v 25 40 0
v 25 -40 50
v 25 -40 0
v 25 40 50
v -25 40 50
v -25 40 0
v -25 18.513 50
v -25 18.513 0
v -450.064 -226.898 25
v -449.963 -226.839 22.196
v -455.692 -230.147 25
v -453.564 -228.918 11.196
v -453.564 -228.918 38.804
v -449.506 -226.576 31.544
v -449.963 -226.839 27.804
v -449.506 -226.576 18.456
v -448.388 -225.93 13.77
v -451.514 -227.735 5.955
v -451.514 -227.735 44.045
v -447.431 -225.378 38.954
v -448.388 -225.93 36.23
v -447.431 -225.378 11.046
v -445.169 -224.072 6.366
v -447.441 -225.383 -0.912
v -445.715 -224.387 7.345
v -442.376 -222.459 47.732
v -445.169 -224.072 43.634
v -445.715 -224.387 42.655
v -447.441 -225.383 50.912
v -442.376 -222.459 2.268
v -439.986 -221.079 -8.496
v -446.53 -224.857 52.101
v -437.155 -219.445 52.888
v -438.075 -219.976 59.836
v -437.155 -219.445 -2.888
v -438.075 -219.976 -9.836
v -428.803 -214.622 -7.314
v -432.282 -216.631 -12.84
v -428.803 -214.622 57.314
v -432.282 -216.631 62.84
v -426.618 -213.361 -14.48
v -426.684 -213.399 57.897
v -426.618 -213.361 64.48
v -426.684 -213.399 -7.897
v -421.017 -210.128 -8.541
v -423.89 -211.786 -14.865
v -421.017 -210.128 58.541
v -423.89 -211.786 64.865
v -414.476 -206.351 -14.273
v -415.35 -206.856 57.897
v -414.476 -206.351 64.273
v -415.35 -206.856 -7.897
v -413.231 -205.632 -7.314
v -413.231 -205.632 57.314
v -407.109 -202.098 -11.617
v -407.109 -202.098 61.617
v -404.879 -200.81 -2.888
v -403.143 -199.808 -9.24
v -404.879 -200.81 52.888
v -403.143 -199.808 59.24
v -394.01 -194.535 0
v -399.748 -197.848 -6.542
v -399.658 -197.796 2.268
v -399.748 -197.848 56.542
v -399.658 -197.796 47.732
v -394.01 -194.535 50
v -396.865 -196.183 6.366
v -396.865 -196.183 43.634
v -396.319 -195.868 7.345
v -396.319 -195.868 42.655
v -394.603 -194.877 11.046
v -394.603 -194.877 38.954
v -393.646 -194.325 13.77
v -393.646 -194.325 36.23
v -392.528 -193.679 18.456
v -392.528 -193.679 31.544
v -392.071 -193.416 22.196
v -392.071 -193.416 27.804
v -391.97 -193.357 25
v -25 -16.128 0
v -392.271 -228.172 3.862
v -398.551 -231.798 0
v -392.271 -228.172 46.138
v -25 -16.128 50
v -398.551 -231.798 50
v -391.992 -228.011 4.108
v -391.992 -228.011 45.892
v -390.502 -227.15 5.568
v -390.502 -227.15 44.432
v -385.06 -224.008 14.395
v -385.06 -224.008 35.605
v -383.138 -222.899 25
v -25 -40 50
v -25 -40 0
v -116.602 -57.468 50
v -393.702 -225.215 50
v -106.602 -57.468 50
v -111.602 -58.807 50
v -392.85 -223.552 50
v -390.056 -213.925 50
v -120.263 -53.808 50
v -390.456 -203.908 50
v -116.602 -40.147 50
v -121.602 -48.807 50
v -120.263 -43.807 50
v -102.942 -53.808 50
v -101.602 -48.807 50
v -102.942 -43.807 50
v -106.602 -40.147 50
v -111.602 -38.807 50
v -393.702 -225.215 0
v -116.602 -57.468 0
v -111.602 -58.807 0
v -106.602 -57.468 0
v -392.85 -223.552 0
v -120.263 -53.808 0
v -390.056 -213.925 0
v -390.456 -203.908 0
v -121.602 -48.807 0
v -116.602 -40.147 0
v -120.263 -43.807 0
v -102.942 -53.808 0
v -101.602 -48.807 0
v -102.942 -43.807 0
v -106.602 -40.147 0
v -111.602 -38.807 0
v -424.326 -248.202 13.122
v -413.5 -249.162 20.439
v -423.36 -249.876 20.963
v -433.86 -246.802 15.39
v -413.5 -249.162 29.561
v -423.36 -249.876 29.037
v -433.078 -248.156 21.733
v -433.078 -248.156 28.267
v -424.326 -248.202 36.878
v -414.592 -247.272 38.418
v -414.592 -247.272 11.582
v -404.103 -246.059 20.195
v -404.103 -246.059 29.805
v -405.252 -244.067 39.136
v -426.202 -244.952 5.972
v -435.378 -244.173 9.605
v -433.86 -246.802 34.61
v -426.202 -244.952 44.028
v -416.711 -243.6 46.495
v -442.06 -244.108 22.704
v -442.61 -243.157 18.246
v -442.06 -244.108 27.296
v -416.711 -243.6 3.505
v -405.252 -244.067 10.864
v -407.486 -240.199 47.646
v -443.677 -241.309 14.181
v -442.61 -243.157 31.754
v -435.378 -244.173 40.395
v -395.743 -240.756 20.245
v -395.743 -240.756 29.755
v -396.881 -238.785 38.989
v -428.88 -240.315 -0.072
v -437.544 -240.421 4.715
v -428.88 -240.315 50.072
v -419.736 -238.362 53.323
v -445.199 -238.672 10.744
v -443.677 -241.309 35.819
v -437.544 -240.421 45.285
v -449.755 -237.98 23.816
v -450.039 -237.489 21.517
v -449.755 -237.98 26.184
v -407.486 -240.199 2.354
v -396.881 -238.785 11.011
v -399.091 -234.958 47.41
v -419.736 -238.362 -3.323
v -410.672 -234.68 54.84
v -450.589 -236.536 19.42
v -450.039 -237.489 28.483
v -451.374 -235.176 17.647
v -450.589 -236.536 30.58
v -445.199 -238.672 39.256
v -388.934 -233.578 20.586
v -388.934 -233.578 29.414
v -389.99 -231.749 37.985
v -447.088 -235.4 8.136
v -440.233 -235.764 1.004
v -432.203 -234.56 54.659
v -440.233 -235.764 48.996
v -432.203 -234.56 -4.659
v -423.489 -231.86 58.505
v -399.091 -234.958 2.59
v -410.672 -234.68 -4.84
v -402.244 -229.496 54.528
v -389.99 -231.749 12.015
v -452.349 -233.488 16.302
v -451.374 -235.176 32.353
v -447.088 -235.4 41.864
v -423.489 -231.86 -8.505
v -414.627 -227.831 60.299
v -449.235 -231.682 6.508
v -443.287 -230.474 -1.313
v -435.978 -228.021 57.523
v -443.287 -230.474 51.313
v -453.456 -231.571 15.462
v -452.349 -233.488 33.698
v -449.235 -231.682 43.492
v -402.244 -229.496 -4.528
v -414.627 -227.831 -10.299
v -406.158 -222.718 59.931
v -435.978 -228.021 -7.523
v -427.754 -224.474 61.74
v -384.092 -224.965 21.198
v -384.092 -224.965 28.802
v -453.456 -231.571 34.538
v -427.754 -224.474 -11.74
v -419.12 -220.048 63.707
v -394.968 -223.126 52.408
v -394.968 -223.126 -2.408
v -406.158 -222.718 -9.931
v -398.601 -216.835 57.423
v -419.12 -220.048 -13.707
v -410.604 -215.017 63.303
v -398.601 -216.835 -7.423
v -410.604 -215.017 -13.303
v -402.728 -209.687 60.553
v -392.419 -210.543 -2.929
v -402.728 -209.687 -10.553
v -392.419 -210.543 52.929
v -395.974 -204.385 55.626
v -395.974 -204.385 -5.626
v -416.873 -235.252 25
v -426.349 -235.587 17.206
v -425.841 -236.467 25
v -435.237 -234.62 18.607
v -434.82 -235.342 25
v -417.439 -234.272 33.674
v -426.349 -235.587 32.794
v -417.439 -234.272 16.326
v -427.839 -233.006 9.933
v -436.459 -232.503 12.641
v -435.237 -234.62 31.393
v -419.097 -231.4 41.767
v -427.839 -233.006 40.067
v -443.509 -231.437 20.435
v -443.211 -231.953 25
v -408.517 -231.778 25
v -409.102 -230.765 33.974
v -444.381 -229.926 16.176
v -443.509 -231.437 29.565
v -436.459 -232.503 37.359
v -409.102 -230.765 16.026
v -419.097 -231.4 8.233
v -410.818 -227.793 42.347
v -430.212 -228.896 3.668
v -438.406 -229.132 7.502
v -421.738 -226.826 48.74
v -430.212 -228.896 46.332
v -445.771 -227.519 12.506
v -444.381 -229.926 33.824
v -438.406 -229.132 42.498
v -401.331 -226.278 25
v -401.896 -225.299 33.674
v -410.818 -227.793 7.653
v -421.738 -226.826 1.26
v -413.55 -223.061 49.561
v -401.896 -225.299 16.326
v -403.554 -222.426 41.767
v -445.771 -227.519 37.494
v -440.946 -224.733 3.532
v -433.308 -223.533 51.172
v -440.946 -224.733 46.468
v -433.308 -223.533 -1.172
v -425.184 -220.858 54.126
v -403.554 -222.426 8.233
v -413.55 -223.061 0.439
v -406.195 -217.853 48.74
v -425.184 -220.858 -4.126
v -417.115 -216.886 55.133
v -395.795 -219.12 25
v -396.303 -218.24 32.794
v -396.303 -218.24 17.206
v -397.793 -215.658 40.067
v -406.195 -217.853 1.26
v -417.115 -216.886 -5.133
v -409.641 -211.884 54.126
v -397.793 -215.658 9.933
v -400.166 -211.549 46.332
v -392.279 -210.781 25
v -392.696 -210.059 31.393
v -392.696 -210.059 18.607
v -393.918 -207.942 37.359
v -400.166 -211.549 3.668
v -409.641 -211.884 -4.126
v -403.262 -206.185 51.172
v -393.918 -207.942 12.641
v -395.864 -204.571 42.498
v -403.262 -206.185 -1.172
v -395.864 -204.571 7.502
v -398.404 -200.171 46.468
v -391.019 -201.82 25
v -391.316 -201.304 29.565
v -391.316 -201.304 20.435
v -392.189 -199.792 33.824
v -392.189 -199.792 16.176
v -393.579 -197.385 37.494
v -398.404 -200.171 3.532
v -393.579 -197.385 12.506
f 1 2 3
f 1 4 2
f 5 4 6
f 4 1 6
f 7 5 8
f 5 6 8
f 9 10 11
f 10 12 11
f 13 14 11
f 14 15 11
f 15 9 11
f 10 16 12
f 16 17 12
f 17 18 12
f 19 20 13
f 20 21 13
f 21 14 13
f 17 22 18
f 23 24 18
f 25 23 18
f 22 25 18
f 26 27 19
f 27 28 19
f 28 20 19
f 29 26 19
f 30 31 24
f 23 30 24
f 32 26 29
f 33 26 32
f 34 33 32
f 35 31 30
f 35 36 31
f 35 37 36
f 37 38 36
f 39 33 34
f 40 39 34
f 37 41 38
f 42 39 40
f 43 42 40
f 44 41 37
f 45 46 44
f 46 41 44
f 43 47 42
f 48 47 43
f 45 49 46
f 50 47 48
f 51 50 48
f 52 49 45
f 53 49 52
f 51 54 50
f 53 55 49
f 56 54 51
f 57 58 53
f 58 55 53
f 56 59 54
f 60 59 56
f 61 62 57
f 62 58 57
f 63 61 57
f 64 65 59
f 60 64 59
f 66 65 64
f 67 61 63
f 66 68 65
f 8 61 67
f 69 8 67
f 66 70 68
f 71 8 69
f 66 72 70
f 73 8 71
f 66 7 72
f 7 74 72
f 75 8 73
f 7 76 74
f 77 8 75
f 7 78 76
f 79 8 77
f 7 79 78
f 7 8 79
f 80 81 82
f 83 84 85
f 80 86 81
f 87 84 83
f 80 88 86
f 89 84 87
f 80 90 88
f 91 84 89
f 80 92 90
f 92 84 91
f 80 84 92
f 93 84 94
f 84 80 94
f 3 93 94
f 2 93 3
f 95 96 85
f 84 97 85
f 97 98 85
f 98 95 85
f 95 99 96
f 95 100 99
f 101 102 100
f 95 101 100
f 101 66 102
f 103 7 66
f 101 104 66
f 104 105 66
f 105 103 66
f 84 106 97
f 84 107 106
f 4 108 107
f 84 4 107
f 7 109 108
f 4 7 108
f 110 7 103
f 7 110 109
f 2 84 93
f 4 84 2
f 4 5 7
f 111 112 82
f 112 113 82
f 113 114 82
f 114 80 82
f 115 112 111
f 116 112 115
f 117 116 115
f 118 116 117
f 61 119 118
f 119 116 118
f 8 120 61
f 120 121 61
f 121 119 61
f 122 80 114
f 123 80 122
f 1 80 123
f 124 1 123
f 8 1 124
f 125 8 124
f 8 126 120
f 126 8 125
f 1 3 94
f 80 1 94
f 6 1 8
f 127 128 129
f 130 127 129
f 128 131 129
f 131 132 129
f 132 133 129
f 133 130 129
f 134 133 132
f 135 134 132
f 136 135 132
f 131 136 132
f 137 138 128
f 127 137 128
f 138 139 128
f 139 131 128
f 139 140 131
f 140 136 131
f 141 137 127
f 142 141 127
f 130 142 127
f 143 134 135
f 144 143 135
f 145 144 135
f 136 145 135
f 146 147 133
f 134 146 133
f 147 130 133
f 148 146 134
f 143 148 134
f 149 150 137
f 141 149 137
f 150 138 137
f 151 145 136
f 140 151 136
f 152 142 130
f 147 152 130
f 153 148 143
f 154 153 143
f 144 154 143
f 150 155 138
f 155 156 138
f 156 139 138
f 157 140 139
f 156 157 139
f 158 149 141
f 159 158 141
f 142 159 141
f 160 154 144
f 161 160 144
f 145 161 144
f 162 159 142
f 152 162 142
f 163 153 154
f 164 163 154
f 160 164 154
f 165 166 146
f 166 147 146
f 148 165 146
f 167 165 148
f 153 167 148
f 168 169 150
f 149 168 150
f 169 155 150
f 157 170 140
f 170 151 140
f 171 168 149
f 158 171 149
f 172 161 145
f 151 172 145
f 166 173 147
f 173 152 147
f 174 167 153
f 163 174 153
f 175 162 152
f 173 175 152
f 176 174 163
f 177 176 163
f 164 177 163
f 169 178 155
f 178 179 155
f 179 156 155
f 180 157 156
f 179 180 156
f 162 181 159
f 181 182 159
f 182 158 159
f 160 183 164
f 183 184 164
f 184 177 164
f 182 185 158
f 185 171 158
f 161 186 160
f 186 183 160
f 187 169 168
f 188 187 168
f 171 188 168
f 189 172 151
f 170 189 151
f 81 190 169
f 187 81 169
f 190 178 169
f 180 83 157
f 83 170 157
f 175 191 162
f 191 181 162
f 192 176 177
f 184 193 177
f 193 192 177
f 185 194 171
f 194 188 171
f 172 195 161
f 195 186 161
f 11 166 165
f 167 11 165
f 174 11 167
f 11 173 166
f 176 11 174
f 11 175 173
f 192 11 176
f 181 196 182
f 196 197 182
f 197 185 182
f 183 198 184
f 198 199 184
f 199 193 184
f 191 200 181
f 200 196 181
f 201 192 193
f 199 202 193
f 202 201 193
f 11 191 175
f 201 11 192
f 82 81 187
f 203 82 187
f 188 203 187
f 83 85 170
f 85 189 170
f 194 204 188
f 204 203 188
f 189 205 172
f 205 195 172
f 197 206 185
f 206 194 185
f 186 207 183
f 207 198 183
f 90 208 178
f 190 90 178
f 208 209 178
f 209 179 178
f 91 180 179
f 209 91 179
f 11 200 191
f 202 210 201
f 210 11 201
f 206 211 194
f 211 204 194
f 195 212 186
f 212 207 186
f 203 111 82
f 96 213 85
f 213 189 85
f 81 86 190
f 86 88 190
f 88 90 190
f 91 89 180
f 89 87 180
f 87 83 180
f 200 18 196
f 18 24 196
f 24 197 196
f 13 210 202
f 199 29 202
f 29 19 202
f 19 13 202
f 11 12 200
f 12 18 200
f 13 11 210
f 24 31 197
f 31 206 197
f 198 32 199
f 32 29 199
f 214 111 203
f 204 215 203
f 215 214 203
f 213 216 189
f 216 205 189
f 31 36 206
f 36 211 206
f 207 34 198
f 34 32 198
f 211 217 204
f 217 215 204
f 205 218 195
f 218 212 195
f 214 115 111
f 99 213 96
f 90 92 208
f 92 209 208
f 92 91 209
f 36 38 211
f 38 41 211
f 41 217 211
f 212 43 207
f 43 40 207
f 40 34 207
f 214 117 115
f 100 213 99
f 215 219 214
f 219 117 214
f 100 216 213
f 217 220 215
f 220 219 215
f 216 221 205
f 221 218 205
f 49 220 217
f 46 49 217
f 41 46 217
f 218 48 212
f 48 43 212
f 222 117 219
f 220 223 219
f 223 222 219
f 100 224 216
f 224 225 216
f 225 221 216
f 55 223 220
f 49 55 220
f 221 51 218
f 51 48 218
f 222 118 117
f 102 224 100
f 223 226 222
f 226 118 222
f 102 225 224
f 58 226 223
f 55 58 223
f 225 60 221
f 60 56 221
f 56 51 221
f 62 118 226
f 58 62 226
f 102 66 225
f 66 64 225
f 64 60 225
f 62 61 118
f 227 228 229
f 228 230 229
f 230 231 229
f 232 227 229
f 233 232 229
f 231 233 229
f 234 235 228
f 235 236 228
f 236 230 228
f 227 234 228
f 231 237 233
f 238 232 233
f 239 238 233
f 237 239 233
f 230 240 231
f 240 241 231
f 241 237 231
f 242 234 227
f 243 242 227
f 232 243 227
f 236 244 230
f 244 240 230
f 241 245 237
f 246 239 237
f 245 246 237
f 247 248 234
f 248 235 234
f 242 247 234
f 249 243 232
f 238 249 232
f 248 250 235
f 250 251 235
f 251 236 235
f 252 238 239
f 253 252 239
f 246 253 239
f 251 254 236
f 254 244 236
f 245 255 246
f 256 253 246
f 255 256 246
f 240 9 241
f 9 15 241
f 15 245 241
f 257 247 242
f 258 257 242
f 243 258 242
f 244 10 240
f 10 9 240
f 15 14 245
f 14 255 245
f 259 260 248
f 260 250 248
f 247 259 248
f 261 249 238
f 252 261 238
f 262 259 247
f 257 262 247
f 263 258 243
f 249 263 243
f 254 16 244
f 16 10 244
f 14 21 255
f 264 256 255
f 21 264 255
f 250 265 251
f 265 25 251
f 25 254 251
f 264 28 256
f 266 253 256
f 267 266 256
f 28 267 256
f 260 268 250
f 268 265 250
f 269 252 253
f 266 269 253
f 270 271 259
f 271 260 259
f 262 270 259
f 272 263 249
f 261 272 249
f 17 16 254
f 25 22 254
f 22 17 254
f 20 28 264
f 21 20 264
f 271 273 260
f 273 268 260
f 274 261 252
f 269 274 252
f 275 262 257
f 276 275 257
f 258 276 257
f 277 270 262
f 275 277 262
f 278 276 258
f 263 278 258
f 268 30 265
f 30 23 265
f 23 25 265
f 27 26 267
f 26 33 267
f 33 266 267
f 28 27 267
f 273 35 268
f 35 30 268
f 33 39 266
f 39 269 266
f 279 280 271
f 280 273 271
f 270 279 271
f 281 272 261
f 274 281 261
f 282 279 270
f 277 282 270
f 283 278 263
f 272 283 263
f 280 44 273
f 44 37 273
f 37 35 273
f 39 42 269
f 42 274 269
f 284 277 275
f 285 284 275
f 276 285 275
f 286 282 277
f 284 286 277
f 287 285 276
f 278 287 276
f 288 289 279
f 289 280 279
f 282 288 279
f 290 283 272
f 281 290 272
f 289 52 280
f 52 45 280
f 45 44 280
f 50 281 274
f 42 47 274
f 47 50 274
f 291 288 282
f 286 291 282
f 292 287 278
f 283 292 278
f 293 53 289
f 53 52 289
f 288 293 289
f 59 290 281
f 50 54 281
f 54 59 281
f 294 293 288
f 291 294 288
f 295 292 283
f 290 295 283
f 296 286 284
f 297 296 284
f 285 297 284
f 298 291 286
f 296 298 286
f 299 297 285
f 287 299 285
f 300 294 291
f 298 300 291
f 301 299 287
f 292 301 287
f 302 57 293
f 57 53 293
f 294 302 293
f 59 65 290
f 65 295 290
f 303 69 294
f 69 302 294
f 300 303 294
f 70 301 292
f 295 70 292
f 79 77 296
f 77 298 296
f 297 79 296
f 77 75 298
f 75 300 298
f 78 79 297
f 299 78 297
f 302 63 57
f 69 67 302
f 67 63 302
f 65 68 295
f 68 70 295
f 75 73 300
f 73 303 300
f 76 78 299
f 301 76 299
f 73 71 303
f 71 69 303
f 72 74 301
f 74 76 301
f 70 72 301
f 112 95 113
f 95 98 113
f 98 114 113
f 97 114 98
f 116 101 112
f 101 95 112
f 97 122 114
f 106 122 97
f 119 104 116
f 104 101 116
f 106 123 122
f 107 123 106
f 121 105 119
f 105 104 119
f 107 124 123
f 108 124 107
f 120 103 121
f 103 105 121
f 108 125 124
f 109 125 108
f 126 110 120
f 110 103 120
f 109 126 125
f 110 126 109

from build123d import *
from build123d.topology import SkipClean

# Parameters (mm, degrees)
BOSS_EXTRUDE1_DEPTH          = 50
CUT_REVOLVE1_ANGLE           = 90
CUT_REVOLVE1_OTHER_WAY_ANGLE = 90
SKETCH5_R                    = 10
CUT_EXTRUDE1_DEPTH           = 524.883590244


# Read off the part's stored shape, not the designer's step: Revolve1
with BuildPart() as part:
    # Sketch1 → Boss-Extrude1 (new body)
    with BuildSketch(Plane.XY):
        Polygon((-25, -16.128), (-406.051177665, -236.128), (-421.051177665, -210.147237886), (-25, 18.513016151), (-25, 40), (25, 40), (25, -40), (-25, -40), align=None)
    extrude(amount=BOSS_EXTRUDE1_DEPTH)

    # Revolve1 outline → Revolve1 (revolve)
    with BuildSketch(Plane(origin=(-406.784806521, -234.857317547, 25), x_dir=(0.8660254037844362, 0.5000000000000042, 0), z_dir=(0, 0, -1))):
        with BuildLine():
            Line((0, 11.467257712), (0, -28.532742288))
            Line((0, -28.532742288), (40, -28.532742288))
            ThreePointArc((40, -28.532742288), (28.284271247, -0.24847104), (0, 11.467257712))
        make_face()
    revolve(axis=Axis((-406.784806521, -234.857317547, 25), (0.5000000000000042, -0.8660254037844362, 0)))

    # Sketch4 → Cut-Revolve1 (revolve, cut)
    with BuildSketch(Plane.XY.offset(25)):
        with BuildLine():
            Line((-395.706087523, -183.967237886), (-456.327865788, -218.967237886))
            ThreePointArc((-456.327865788, -218.967237886), (-408.516976655, -231.778127019), (-395.706087523, -183.967237886))
        make_face()
    revolve(axis=Axis((-395.706087523, -183.967237886, 25), (-0.8660254037844387, -0.49999999999999994, 0)), revolution_arc=CUT_REVOLVE1_ANGLE, mode=Mode.SUBTRACT)

    # Sketch4 → Cut-Revolve1 other way (revolve, cut)
    with SkipClean():  # the faces are left unmerged after this step: merging them gives an invalid solid
        with BuildSketch(Plane.XY.offset(25)):
            with BuildLine():
                Line((-395.706087523, -183.967237886), (-456.327865788, -218.967237886))
                ThreePointArc((-456.327865788, -218.967237886), (-408.516976655, -231.778127019), (-395.706087523, -183.967237886))
            make_face()
        revolve(axis=Axis((-395.706087523, -183.967237886, 25), (0.8660254037844387, 0.49999999999999994, 0)), revolution_arc=CUT_REVOLVE1_OTHER_WAY_ANGLE, mode=Mode.SUBTRACT)

    # Sketch5 → Cut-Extrude1 (cut, through all)
    with SkipClean():  # the faces are left unmerged after this step: merging them gives an invalid solid
        with BuildSketch(Plane.XY.offset(50)):
            with Locations((-111.602540378, -48.807491924)):
                Circle(SKETCH5_R)
        extrude(amount=-CUT_EXTRUDE1_DEPTH, mode=Mode.SUBTRACT)


solid = part.part
